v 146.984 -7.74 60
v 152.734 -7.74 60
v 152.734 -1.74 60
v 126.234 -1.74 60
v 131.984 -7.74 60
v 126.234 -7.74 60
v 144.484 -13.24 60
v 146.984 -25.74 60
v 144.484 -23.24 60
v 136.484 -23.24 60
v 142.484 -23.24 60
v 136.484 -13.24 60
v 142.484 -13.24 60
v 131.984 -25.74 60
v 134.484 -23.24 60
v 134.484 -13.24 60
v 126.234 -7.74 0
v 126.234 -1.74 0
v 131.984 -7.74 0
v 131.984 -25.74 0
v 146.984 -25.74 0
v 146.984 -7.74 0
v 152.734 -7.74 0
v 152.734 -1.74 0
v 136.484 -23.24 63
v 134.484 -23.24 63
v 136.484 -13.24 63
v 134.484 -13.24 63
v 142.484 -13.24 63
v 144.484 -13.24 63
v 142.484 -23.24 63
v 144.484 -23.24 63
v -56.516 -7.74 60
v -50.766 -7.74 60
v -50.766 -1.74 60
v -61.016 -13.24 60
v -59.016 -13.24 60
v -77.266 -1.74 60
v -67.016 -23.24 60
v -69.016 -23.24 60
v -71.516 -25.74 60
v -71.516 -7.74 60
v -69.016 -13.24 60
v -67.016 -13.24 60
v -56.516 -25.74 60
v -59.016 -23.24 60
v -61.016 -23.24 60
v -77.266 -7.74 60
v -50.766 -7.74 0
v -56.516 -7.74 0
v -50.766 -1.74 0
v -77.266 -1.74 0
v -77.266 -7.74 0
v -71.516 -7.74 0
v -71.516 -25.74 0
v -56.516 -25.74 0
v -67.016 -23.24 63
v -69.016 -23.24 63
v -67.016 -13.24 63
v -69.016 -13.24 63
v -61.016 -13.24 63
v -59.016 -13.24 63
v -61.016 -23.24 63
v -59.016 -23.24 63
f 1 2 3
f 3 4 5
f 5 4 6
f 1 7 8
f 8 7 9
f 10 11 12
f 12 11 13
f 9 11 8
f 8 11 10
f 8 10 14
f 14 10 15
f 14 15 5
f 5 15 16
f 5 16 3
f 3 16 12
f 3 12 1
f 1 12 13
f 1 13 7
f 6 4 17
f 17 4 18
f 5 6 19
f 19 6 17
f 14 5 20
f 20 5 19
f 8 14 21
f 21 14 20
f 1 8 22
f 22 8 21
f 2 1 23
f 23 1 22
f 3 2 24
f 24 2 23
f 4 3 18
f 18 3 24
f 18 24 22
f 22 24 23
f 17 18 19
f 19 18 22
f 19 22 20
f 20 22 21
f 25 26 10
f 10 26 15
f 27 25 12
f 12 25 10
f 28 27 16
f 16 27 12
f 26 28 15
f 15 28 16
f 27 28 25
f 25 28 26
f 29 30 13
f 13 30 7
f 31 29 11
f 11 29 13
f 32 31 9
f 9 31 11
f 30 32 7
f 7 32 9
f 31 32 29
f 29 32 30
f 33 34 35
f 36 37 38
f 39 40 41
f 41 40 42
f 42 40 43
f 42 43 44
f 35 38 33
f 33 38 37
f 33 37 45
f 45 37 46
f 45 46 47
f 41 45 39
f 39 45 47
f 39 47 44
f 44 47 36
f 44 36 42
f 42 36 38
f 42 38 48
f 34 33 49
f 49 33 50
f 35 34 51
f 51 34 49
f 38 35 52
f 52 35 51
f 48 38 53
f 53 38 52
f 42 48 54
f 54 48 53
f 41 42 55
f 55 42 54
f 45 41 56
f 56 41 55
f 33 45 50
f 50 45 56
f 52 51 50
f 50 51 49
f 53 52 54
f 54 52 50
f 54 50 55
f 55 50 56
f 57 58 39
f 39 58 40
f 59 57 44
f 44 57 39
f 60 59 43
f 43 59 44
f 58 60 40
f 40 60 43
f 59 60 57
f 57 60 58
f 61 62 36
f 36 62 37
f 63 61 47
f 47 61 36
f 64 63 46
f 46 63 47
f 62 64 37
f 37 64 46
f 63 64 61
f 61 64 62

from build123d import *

# Parameters (mm, degrees)
BOSS_EXTRUDE1_DEPTH   = 60
BOSS_EXTRUDE1_2_DEPTH = 60
SKETCH2_W             = 2
SKETCH2_H             = 10
BOSS_EXTRUDE2_DEPTH   = 3


with BuildPart() as part:
    # Sketch1 → Boss-Extrude1 (new body)
    with BuildSketch(Plane.XY):
        Polygon((-56.516255203, -7.740004899), (-56.516255203, -25.740004899), (-71.516255203, -25.740004899), (-71.516255203, -7.740004899), (-77.266255203, -7.740004899), (-77.266255203, -1.740004899), (-50.766255203, -1.740004899), (-50.766255203, -7.740004899), align=None)
    extrude(amount=BOSS_EXTRUDE1_DEPTH)



with BuildPart() as body_2:
    # Sketch1 → Boss-Extrude1 2 (new body)
    with BuildSketch(Plane.XY):
        Polygon((146.983744797, -25.740004899), (146.983744797, -7.740004899), (152.733744797, -7.740004899), (152.733744797, -1.740004899), (126.233744797, -1.740004899), (126.233744797, -7.740004899), (131.983744797, -7.740004899), (131.983744797, -25.740004899), align=None)
    extrude(amount=BOSS_EXTRUDE1_2_DEPTH)


with BuildPart() as part_1:
    add(part.part)

    add(body_2.part)  # Boss-Extrude2 merges body 2
    # Sketch2 → Boss-Extrude2 (add)
    with BuildSketch(Plane.XY.offset(60)):
        with Locations((-68.016255203, -18.240004899)):
            Rectangle(SKETCH2_W, SKETCH2_H)
        with Locations((-60.016255203, -18.240004899)):
            Rectangle(SKETCH2_W, SKETCH2_H)
        with Locations((135.483744797, -18.240004899)):
            Rectangle(SKETCH2_W, SKETCH2_H)
        with Locations((143.483744797, -18.240004899)):
            Rectangle(SKETCH2_W, SKETCH2_H)
    extrude(amount=BOSS_EXTRUDE2_DEPTH)


solid = part_1.part
